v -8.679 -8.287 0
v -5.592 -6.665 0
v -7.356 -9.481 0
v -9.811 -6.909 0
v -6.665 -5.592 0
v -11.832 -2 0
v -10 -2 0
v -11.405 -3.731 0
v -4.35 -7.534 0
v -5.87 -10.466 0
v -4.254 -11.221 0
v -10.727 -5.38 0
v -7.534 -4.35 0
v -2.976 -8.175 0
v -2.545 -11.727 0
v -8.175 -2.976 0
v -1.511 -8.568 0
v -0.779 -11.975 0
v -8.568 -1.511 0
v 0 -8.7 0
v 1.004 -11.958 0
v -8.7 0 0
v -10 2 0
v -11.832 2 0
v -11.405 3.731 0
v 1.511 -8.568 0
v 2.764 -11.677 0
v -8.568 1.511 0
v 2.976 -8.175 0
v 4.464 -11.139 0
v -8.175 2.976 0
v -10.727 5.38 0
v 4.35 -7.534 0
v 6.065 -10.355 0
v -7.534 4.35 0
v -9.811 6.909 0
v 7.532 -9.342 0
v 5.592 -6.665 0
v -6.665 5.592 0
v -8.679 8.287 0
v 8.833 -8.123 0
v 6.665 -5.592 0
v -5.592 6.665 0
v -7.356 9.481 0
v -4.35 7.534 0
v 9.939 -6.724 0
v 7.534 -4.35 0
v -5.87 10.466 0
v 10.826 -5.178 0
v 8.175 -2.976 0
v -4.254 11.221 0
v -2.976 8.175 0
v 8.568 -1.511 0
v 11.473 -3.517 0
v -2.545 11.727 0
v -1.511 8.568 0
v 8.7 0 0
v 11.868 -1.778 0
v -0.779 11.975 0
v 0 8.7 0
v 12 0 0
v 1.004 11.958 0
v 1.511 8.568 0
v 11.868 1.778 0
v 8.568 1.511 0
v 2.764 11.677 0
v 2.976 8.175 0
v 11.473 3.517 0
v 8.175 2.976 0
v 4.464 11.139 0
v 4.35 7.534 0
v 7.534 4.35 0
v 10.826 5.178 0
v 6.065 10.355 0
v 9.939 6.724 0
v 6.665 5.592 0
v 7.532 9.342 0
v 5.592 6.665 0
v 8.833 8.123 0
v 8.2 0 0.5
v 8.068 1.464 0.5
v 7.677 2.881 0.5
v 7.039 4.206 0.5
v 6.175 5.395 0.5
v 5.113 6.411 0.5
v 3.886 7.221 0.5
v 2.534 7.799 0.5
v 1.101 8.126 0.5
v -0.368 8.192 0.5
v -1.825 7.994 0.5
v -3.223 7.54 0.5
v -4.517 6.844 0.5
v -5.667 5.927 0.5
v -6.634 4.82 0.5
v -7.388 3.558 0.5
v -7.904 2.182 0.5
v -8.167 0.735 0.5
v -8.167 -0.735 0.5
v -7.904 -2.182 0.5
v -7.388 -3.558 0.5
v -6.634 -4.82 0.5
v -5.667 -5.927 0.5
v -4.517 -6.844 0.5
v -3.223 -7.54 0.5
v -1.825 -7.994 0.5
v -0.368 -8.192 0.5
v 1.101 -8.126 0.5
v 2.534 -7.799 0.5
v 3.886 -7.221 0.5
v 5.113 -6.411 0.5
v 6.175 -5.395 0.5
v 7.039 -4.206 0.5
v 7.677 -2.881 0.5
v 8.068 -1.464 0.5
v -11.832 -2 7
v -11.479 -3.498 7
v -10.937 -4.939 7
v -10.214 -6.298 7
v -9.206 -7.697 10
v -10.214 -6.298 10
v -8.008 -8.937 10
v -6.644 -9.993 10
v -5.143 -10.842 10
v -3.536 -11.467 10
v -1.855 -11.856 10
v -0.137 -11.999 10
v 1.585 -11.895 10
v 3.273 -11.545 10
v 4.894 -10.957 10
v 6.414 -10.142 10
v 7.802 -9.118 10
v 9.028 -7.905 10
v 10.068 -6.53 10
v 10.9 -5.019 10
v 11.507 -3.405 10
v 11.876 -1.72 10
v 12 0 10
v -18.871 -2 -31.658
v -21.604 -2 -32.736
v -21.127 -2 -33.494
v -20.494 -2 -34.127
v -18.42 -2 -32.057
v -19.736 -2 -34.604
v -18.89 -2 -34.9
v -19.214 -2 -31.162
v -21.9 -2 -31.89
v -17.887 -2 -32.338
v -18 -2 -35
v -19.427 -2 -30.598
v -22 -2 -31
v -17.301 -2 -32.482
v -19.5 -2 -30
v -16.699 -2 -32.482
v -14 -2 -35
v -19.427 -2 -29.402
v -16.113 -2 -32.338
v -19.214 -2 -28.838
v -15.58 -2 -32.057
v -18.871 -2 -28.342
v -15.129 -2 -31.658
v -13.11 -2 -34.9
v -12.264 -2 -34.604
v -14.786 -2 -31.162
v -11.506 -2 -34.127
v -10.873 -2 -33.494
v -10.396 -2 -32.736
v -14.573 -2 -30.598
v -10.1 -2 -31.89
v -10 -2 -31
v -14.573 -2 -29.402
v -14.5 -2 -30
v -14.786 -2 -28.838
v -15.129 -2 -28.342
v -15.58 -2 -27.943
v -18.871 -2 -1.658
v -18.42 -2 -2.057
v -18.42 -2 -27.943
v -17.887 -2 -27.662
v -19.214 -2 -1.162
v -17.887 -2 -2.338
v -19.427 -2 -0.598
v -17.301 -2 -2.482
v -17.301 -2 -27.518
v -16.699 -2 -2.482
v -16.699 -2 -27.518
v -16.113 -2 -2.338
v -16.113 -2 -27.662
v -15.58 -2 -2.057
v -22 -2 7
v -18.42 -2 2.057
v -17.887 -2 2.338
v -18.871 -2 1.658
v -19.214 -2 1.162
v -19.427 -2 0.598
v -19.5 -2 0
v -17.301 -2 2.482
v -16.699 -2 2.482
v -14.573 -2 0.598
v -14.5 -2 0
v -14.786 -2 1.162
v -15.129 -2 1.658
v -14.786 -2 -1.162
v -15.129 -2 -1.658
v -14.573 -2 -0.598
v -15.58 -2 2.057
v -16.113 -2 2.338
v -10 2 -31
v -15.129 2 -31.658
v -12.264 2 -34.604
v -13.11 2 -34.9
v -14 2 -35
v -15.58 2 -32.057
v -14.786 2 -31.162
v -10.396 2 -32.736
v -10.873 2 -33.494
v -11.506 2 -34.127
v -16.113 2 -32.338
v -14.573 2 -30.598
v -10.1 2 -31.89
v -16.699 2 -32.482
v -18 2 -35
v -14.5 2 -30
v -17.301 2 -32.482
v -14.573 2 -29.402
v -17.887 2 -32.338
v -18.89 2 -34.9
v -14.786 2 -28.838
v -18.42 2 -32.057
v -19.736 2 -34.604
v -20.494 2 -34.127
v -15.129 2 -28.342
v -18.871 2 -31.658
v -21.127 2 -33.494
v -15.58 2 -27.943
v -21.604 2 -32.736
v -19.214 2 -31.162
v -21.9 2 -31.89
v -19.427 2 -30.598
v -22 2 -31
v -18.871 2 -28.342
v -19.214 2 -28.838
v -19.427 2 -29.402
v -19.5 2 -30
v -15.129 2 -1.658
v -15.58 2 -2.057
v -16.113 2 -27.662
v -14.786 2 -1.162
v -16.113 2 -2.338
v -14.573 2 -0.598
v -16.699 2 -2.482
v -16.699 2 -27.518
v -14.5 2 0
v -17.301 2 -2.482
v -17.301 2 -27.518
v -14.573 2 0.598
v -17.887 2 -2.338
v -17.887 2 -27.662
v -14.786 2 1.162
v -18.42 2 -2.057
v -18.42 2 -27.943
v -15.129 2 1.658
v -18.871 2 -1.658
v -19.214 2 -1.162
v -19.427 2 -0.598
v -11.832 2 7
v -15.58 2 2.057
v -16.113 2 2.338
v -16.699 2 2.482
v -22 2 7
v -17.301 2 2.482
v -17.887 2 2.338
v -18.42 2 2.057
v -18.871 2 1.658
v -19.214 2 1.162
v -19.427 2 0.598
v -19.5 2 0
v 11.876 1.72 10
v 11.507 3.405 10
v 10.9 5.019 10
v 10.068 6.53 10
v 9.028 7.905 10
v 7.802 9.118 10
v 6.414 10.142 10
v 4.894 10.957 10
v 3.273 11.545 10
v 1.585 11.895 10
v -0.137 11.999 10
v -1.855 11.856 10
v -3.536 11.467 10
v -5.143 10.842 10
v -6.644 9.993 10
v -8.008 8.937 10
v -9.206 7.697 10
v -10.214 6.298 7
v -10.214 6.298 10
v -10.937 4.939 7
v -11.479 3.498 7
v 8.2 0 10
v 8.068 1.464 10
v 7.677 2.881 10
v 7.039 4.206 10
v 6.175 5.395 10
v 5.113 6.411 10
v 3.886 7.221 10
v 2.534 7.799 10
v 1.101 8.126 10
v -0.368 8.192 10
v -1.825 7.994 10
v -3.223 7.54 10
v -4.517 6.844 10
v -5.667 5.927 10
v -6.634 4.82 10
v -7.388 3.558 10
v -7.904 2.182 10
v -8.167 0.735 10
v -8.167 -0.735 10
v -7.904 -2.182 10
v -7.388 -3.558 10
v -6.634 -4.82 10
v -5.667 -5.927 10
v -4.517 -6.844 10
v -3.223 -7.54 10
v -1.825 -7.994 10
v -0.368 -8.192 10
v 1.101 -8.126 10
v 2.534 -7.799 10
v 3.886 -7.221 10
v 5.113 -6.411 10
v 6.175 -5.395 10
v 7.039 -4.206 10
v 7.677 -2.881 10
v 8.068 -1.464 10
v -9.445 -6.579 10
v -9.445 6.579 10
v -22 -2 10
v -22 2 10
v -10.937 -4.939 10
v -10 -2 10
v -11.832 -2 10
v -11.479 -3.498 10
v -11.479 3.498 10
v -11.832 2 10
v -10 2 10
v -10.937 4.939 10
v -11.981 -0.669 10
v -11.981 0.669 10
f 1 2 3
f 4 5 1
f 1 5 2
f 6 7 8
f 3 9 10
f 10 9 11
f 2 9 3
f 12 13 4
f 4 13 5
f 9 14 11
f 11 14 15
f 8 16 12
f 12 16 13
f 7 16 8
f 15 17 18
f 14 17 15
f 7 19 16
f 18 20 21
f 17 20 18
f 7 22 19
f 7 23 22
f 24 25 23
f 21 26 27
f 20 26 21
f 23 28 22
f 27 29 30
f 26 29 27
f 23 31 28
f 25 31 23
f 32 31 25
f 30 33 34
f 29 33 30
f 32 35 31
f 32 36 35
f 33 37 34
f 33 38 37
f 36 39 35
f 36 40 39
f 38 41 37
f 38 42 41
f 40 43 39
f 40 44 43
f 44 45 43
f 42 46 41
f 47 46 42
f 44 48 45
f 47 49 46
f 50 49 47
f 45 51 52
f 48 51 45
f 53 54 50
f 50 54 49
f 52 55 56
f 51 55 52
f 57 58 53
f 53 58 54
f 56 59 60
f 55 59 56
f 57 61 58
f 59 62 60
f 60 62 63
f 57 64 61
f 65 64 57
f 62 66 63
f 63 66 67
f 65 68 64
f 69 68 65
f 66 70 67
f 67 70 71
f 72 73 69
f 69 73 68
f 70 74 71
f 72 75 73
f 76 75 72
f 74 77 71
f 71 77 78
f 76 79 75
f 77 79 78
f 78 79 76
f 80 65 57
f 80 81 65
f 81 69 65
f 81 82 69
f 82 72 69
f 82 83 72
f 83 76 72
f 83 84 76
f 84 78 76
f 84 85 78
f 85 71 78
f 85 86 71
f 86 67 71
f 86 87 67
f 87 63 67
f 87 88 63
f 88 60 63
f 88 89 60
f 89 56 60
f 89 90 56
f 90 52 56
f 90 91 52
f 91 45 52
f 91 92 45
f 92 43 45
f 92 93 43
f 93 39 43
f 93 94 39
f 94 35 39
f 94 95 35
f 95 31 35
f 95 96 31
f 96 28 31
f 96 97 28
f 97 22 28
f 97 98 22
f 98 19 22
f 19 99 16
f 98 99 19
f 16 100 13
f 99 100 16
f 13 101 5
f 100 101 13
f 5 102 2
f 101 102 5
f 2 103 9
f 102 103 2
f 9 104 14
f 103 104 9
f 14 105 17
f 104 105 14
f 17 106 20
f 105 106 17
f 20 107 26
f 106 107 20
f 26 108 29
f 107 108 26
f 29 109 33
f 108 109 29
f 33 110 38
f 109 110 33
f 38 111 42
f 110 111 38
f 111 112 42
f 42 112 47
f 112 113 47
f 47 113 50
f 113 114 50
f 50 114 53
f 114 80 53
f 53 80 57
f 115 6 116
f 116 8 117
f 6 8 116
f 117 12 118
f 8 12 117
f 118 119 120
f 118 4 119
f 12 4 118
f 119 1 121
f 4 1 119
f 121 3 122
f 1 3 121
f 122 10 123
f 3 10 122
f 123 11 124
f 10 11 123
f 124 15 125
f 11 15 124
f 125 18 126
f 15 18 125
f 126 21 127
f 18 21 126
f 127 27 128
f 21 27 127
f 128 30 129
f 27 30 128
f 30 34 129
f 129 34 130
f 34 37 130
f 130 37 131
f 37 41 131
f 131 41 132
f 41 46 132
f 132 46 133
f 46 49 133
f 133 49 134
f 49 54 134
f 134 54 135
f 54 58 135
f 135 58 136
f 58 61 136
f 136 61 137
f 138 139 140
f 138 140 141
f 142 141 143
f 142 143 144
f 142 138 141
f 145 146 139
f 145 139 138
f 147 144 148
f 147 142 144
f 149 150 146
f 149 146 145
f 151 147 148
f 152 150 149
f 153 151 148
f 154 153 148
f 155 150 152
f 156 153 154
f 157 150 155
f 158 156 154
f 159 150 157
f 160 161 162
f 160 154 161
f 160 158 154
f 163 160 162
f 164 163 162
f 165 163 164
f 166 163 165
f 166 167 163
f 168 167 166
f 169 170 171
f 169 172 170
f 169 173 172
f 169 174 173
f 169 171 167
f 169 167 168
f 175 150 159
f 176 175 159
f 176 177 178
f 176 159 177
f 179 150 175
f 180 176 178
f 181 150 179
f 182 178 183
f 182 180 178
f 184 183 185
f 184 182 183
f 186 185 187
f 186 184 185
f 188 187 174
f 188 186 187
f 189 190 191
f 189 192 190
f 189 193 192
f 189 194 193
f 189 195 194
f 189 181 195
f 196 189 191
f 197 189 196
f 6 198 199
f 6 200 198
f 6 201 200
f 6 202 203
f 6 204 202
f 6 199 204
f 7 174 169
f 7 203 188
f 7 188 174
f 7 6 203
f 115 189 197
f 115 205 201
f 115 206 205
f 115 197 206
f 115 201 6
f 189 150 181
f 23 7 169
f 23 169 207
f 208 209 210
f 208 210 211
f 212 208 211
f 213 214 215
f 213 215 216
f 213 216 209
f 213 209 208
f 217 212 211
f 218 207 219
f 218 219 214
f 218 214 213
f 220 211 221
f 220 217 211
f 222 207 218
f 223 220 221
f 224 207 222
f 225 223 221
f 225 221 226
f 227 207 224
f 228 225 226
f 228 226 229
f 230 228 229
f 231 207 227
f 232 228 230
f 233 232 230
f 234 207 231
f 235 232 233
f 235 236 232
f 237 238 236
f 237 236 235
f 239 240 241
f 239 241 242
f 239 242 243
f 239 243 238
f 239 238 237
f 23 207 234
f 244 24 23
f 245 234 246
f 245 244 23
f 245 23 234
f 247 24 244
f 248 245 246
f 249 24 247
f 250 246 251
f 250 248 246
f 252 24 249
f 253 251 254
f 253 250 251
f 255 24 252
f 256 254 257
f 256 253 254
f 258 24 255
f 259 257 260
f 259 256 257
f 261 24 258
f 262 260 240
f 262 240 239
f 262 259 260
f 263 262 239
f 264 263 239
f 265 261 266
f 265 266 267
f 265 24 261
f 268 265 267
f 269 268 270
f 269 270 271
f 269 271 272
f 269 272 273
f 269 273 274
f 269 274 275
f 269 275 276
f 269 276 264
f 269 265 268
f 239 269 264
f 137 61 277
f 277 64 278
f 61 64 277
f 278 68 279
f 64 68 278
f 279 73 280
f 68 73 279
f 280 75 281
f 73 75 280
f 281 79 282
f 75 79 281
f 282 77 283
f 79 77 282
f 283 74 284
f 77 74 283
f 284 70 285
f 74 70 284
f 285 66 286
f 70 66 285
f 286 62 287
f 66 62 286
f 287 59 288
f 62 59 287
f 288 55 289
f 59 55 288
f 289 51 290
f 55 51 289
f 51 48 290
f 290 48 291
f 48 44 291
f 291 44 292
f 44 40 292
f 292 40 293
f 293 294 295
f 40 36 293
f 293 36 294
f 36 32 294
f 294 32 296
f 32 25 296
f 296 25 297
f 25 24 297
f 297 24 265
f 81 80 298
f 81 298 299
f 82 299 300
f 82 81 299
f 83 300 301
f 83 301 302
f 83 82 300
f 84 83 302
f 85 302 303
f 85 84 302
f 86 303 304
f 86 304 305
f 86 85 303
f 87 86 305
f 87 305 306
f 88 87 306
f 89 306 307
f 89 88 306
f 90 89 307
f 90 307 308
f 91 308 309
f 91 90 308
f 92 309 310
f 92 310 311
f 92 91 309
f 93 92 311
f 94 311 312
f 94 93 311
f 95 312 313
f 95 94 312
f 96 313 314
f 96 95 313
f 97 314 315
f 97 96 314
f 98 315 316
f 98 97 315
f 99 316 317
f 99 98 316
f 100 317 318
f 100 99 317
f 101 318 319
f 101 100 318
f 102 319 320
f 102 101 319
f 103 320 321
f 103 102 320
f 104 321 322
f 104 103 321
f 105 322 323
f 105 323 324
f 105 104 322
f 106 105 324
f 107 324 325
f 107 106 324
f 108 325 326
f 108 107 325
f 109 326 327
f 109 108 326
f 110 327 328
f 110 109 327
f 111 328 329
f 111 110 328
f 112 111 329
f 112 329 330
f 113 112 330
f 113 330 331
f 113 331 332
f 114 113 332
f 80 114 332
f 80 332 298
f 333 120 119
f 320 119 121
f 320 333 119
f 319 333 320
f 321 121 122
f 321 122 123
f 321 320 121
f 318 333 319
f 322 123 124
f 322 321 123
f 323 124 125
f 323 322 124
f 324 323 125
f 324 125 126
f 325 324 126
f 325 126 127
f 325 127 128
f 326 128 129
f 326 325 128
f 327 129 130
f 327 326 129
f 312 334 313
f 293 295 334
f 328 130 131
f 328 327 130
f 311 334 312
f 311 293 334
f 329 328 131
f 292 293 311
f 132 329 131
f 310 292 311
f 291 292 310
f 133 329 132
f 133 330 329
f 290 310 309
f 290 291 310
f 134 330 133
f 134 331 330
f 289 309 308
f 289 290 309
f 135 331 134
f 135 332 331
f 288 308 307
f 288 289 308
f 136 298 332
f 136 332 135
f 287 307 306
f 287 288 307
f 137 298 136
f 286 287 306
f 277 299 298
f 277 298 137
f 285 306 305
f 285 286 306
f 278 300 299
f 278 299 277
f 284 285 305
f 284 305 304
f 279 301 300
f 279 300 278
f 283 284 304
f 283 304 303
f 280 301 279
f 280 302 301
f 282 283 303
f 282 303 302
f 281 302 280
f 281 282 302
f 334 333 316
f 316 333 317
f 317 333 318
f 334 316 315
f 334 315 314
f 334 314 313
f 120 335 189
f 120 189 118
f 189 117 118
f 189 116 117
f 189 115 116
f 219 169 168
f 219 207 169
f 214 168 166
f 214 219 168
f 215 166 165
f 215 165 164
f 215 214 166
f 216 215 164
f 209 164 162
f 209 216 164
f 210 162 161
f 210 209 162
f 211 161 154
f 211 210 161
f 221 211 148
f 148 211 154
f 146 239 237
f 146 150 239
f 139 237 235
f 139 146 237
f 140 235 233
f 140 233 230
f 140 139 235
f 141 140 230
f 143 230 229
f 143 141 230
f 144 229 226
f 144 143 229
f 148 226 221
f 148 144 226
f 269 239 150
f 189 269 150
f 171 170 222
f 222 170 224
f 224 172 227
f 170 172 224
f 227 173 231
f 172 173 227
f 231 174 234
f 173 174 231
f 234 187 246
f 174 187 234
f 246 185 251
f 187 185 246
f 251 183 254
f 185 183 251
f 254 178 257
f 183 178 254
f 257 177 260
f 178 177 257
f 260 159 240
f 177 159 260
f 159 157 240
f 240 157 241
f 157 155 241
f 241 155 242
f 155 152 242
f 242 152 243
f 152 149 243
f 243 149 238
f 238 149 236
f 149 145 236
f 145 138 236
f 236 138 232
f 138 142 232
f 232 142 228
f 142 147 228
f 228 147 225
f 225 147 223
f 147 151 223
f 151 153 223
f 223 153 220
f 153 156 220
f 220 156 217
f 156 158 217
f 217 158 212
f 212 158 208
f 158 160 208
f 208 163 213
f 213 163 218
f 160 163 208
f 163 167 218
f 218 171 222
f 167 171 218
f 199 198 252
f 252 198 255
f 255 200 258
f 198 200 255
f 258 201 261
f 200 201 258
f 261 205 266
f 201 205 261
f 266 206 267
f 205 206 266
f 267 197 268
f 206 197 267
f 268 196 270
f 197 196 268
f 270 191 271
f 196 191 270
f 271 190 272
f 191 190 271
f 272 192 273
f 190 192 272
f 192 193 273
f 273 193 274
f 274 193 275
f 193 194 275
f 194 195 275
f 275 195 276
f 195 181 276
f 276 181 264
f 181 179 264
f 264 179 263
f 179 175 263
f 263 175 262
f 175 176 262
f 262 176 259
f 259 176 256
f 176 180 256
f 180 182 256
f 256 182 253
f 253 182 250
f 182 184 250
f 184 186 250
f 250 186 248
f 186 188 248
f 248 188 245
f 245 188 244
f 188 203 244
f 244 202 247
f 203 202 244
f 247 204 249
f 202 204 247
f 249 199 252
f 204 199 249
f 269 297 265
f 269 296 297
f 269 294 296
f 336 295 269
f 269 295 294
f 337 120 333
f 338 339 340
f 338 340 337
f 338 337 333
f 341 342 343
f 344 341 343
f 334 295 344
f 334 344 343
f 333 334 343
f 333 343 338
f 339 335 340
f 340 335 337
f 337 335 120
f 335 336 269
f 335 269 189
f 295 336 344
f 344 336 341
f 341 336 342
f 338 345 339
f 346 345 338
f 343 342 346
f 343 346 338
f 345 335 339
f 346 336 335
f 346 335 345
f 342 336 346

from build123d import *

# Parameters (mm, degrees)
SKETCH_R     = 12
SKETCH_R_2   = 8.2
PAD_DEPTH    = 10
SKETCH001_W  = 12
SKETCH001_H  = 4
PAD001_DEPTH = 45
SKETCH003_R  = 2.5
POCKET_DEPTH = 5
PAD002_DEPTH = 3
FILLET_R     = 4
CHAMFER_SIZE = 0.5


with BuildPart() as part:
    # Sketch → Pad (new body)
    with BuildSketch(Plane.XY):
        Circle(SKETCH_R)
        Circle(SKETCH_R_2, mode=Mode.SUBTRACT)
    extrude(amount=PAD_DEPTH)

    # Sketch001 (on Face4 of Pad) → Pad001 (join)
    with BuildSketch(Plane.XY.offset(10)):
        with Locations((-16, 0)):
            Rectangle(SKETCH001_W, SKETCH001_H)
    extrude(amount=-PAD001_DEPTH)

    # Sketch003 (on Face6 of Pad001) → Pocket (cut)
    with BuildSketch(Plane.XZ.offset(2)):
        with Locations((-17, 0)):
            Circle(SKETCH003_R)
        with Locations((-17, -30)):
            Circle(SKETCH003_R)
    extrude(amount=-POCKET_DEPTH, mode=Mode.SUBTRACT)

    # Sketch005 (on Face10 of Pocket) → Pad002 (join)
    with BuildSketch(Plane.XY.offset(10)):
        Polygon((-22, 2), (-9.44483, 6.578776), (-9.44483, -6.578776), (-22, -2), align=None)
    extrude(amount=-PAD002_DEPTH)

    # Fillet
    fillet_edges = [part.edges().sort_by_distance(p)[0] for p in [
        (-22, 0, -35),
        (-10, 0, -35),
    ]]
    fillet(fillet_edges, radius=FILLET_R)

    # Chamfer
    chamfer_edges = [part.edges().sort_by_distance(p)[0] for p in [
        (-8.2, 0, 0),
    ]]
    chamfer(chamfer_edges, length=CHAMFER_SIZE)


solid = part.part
